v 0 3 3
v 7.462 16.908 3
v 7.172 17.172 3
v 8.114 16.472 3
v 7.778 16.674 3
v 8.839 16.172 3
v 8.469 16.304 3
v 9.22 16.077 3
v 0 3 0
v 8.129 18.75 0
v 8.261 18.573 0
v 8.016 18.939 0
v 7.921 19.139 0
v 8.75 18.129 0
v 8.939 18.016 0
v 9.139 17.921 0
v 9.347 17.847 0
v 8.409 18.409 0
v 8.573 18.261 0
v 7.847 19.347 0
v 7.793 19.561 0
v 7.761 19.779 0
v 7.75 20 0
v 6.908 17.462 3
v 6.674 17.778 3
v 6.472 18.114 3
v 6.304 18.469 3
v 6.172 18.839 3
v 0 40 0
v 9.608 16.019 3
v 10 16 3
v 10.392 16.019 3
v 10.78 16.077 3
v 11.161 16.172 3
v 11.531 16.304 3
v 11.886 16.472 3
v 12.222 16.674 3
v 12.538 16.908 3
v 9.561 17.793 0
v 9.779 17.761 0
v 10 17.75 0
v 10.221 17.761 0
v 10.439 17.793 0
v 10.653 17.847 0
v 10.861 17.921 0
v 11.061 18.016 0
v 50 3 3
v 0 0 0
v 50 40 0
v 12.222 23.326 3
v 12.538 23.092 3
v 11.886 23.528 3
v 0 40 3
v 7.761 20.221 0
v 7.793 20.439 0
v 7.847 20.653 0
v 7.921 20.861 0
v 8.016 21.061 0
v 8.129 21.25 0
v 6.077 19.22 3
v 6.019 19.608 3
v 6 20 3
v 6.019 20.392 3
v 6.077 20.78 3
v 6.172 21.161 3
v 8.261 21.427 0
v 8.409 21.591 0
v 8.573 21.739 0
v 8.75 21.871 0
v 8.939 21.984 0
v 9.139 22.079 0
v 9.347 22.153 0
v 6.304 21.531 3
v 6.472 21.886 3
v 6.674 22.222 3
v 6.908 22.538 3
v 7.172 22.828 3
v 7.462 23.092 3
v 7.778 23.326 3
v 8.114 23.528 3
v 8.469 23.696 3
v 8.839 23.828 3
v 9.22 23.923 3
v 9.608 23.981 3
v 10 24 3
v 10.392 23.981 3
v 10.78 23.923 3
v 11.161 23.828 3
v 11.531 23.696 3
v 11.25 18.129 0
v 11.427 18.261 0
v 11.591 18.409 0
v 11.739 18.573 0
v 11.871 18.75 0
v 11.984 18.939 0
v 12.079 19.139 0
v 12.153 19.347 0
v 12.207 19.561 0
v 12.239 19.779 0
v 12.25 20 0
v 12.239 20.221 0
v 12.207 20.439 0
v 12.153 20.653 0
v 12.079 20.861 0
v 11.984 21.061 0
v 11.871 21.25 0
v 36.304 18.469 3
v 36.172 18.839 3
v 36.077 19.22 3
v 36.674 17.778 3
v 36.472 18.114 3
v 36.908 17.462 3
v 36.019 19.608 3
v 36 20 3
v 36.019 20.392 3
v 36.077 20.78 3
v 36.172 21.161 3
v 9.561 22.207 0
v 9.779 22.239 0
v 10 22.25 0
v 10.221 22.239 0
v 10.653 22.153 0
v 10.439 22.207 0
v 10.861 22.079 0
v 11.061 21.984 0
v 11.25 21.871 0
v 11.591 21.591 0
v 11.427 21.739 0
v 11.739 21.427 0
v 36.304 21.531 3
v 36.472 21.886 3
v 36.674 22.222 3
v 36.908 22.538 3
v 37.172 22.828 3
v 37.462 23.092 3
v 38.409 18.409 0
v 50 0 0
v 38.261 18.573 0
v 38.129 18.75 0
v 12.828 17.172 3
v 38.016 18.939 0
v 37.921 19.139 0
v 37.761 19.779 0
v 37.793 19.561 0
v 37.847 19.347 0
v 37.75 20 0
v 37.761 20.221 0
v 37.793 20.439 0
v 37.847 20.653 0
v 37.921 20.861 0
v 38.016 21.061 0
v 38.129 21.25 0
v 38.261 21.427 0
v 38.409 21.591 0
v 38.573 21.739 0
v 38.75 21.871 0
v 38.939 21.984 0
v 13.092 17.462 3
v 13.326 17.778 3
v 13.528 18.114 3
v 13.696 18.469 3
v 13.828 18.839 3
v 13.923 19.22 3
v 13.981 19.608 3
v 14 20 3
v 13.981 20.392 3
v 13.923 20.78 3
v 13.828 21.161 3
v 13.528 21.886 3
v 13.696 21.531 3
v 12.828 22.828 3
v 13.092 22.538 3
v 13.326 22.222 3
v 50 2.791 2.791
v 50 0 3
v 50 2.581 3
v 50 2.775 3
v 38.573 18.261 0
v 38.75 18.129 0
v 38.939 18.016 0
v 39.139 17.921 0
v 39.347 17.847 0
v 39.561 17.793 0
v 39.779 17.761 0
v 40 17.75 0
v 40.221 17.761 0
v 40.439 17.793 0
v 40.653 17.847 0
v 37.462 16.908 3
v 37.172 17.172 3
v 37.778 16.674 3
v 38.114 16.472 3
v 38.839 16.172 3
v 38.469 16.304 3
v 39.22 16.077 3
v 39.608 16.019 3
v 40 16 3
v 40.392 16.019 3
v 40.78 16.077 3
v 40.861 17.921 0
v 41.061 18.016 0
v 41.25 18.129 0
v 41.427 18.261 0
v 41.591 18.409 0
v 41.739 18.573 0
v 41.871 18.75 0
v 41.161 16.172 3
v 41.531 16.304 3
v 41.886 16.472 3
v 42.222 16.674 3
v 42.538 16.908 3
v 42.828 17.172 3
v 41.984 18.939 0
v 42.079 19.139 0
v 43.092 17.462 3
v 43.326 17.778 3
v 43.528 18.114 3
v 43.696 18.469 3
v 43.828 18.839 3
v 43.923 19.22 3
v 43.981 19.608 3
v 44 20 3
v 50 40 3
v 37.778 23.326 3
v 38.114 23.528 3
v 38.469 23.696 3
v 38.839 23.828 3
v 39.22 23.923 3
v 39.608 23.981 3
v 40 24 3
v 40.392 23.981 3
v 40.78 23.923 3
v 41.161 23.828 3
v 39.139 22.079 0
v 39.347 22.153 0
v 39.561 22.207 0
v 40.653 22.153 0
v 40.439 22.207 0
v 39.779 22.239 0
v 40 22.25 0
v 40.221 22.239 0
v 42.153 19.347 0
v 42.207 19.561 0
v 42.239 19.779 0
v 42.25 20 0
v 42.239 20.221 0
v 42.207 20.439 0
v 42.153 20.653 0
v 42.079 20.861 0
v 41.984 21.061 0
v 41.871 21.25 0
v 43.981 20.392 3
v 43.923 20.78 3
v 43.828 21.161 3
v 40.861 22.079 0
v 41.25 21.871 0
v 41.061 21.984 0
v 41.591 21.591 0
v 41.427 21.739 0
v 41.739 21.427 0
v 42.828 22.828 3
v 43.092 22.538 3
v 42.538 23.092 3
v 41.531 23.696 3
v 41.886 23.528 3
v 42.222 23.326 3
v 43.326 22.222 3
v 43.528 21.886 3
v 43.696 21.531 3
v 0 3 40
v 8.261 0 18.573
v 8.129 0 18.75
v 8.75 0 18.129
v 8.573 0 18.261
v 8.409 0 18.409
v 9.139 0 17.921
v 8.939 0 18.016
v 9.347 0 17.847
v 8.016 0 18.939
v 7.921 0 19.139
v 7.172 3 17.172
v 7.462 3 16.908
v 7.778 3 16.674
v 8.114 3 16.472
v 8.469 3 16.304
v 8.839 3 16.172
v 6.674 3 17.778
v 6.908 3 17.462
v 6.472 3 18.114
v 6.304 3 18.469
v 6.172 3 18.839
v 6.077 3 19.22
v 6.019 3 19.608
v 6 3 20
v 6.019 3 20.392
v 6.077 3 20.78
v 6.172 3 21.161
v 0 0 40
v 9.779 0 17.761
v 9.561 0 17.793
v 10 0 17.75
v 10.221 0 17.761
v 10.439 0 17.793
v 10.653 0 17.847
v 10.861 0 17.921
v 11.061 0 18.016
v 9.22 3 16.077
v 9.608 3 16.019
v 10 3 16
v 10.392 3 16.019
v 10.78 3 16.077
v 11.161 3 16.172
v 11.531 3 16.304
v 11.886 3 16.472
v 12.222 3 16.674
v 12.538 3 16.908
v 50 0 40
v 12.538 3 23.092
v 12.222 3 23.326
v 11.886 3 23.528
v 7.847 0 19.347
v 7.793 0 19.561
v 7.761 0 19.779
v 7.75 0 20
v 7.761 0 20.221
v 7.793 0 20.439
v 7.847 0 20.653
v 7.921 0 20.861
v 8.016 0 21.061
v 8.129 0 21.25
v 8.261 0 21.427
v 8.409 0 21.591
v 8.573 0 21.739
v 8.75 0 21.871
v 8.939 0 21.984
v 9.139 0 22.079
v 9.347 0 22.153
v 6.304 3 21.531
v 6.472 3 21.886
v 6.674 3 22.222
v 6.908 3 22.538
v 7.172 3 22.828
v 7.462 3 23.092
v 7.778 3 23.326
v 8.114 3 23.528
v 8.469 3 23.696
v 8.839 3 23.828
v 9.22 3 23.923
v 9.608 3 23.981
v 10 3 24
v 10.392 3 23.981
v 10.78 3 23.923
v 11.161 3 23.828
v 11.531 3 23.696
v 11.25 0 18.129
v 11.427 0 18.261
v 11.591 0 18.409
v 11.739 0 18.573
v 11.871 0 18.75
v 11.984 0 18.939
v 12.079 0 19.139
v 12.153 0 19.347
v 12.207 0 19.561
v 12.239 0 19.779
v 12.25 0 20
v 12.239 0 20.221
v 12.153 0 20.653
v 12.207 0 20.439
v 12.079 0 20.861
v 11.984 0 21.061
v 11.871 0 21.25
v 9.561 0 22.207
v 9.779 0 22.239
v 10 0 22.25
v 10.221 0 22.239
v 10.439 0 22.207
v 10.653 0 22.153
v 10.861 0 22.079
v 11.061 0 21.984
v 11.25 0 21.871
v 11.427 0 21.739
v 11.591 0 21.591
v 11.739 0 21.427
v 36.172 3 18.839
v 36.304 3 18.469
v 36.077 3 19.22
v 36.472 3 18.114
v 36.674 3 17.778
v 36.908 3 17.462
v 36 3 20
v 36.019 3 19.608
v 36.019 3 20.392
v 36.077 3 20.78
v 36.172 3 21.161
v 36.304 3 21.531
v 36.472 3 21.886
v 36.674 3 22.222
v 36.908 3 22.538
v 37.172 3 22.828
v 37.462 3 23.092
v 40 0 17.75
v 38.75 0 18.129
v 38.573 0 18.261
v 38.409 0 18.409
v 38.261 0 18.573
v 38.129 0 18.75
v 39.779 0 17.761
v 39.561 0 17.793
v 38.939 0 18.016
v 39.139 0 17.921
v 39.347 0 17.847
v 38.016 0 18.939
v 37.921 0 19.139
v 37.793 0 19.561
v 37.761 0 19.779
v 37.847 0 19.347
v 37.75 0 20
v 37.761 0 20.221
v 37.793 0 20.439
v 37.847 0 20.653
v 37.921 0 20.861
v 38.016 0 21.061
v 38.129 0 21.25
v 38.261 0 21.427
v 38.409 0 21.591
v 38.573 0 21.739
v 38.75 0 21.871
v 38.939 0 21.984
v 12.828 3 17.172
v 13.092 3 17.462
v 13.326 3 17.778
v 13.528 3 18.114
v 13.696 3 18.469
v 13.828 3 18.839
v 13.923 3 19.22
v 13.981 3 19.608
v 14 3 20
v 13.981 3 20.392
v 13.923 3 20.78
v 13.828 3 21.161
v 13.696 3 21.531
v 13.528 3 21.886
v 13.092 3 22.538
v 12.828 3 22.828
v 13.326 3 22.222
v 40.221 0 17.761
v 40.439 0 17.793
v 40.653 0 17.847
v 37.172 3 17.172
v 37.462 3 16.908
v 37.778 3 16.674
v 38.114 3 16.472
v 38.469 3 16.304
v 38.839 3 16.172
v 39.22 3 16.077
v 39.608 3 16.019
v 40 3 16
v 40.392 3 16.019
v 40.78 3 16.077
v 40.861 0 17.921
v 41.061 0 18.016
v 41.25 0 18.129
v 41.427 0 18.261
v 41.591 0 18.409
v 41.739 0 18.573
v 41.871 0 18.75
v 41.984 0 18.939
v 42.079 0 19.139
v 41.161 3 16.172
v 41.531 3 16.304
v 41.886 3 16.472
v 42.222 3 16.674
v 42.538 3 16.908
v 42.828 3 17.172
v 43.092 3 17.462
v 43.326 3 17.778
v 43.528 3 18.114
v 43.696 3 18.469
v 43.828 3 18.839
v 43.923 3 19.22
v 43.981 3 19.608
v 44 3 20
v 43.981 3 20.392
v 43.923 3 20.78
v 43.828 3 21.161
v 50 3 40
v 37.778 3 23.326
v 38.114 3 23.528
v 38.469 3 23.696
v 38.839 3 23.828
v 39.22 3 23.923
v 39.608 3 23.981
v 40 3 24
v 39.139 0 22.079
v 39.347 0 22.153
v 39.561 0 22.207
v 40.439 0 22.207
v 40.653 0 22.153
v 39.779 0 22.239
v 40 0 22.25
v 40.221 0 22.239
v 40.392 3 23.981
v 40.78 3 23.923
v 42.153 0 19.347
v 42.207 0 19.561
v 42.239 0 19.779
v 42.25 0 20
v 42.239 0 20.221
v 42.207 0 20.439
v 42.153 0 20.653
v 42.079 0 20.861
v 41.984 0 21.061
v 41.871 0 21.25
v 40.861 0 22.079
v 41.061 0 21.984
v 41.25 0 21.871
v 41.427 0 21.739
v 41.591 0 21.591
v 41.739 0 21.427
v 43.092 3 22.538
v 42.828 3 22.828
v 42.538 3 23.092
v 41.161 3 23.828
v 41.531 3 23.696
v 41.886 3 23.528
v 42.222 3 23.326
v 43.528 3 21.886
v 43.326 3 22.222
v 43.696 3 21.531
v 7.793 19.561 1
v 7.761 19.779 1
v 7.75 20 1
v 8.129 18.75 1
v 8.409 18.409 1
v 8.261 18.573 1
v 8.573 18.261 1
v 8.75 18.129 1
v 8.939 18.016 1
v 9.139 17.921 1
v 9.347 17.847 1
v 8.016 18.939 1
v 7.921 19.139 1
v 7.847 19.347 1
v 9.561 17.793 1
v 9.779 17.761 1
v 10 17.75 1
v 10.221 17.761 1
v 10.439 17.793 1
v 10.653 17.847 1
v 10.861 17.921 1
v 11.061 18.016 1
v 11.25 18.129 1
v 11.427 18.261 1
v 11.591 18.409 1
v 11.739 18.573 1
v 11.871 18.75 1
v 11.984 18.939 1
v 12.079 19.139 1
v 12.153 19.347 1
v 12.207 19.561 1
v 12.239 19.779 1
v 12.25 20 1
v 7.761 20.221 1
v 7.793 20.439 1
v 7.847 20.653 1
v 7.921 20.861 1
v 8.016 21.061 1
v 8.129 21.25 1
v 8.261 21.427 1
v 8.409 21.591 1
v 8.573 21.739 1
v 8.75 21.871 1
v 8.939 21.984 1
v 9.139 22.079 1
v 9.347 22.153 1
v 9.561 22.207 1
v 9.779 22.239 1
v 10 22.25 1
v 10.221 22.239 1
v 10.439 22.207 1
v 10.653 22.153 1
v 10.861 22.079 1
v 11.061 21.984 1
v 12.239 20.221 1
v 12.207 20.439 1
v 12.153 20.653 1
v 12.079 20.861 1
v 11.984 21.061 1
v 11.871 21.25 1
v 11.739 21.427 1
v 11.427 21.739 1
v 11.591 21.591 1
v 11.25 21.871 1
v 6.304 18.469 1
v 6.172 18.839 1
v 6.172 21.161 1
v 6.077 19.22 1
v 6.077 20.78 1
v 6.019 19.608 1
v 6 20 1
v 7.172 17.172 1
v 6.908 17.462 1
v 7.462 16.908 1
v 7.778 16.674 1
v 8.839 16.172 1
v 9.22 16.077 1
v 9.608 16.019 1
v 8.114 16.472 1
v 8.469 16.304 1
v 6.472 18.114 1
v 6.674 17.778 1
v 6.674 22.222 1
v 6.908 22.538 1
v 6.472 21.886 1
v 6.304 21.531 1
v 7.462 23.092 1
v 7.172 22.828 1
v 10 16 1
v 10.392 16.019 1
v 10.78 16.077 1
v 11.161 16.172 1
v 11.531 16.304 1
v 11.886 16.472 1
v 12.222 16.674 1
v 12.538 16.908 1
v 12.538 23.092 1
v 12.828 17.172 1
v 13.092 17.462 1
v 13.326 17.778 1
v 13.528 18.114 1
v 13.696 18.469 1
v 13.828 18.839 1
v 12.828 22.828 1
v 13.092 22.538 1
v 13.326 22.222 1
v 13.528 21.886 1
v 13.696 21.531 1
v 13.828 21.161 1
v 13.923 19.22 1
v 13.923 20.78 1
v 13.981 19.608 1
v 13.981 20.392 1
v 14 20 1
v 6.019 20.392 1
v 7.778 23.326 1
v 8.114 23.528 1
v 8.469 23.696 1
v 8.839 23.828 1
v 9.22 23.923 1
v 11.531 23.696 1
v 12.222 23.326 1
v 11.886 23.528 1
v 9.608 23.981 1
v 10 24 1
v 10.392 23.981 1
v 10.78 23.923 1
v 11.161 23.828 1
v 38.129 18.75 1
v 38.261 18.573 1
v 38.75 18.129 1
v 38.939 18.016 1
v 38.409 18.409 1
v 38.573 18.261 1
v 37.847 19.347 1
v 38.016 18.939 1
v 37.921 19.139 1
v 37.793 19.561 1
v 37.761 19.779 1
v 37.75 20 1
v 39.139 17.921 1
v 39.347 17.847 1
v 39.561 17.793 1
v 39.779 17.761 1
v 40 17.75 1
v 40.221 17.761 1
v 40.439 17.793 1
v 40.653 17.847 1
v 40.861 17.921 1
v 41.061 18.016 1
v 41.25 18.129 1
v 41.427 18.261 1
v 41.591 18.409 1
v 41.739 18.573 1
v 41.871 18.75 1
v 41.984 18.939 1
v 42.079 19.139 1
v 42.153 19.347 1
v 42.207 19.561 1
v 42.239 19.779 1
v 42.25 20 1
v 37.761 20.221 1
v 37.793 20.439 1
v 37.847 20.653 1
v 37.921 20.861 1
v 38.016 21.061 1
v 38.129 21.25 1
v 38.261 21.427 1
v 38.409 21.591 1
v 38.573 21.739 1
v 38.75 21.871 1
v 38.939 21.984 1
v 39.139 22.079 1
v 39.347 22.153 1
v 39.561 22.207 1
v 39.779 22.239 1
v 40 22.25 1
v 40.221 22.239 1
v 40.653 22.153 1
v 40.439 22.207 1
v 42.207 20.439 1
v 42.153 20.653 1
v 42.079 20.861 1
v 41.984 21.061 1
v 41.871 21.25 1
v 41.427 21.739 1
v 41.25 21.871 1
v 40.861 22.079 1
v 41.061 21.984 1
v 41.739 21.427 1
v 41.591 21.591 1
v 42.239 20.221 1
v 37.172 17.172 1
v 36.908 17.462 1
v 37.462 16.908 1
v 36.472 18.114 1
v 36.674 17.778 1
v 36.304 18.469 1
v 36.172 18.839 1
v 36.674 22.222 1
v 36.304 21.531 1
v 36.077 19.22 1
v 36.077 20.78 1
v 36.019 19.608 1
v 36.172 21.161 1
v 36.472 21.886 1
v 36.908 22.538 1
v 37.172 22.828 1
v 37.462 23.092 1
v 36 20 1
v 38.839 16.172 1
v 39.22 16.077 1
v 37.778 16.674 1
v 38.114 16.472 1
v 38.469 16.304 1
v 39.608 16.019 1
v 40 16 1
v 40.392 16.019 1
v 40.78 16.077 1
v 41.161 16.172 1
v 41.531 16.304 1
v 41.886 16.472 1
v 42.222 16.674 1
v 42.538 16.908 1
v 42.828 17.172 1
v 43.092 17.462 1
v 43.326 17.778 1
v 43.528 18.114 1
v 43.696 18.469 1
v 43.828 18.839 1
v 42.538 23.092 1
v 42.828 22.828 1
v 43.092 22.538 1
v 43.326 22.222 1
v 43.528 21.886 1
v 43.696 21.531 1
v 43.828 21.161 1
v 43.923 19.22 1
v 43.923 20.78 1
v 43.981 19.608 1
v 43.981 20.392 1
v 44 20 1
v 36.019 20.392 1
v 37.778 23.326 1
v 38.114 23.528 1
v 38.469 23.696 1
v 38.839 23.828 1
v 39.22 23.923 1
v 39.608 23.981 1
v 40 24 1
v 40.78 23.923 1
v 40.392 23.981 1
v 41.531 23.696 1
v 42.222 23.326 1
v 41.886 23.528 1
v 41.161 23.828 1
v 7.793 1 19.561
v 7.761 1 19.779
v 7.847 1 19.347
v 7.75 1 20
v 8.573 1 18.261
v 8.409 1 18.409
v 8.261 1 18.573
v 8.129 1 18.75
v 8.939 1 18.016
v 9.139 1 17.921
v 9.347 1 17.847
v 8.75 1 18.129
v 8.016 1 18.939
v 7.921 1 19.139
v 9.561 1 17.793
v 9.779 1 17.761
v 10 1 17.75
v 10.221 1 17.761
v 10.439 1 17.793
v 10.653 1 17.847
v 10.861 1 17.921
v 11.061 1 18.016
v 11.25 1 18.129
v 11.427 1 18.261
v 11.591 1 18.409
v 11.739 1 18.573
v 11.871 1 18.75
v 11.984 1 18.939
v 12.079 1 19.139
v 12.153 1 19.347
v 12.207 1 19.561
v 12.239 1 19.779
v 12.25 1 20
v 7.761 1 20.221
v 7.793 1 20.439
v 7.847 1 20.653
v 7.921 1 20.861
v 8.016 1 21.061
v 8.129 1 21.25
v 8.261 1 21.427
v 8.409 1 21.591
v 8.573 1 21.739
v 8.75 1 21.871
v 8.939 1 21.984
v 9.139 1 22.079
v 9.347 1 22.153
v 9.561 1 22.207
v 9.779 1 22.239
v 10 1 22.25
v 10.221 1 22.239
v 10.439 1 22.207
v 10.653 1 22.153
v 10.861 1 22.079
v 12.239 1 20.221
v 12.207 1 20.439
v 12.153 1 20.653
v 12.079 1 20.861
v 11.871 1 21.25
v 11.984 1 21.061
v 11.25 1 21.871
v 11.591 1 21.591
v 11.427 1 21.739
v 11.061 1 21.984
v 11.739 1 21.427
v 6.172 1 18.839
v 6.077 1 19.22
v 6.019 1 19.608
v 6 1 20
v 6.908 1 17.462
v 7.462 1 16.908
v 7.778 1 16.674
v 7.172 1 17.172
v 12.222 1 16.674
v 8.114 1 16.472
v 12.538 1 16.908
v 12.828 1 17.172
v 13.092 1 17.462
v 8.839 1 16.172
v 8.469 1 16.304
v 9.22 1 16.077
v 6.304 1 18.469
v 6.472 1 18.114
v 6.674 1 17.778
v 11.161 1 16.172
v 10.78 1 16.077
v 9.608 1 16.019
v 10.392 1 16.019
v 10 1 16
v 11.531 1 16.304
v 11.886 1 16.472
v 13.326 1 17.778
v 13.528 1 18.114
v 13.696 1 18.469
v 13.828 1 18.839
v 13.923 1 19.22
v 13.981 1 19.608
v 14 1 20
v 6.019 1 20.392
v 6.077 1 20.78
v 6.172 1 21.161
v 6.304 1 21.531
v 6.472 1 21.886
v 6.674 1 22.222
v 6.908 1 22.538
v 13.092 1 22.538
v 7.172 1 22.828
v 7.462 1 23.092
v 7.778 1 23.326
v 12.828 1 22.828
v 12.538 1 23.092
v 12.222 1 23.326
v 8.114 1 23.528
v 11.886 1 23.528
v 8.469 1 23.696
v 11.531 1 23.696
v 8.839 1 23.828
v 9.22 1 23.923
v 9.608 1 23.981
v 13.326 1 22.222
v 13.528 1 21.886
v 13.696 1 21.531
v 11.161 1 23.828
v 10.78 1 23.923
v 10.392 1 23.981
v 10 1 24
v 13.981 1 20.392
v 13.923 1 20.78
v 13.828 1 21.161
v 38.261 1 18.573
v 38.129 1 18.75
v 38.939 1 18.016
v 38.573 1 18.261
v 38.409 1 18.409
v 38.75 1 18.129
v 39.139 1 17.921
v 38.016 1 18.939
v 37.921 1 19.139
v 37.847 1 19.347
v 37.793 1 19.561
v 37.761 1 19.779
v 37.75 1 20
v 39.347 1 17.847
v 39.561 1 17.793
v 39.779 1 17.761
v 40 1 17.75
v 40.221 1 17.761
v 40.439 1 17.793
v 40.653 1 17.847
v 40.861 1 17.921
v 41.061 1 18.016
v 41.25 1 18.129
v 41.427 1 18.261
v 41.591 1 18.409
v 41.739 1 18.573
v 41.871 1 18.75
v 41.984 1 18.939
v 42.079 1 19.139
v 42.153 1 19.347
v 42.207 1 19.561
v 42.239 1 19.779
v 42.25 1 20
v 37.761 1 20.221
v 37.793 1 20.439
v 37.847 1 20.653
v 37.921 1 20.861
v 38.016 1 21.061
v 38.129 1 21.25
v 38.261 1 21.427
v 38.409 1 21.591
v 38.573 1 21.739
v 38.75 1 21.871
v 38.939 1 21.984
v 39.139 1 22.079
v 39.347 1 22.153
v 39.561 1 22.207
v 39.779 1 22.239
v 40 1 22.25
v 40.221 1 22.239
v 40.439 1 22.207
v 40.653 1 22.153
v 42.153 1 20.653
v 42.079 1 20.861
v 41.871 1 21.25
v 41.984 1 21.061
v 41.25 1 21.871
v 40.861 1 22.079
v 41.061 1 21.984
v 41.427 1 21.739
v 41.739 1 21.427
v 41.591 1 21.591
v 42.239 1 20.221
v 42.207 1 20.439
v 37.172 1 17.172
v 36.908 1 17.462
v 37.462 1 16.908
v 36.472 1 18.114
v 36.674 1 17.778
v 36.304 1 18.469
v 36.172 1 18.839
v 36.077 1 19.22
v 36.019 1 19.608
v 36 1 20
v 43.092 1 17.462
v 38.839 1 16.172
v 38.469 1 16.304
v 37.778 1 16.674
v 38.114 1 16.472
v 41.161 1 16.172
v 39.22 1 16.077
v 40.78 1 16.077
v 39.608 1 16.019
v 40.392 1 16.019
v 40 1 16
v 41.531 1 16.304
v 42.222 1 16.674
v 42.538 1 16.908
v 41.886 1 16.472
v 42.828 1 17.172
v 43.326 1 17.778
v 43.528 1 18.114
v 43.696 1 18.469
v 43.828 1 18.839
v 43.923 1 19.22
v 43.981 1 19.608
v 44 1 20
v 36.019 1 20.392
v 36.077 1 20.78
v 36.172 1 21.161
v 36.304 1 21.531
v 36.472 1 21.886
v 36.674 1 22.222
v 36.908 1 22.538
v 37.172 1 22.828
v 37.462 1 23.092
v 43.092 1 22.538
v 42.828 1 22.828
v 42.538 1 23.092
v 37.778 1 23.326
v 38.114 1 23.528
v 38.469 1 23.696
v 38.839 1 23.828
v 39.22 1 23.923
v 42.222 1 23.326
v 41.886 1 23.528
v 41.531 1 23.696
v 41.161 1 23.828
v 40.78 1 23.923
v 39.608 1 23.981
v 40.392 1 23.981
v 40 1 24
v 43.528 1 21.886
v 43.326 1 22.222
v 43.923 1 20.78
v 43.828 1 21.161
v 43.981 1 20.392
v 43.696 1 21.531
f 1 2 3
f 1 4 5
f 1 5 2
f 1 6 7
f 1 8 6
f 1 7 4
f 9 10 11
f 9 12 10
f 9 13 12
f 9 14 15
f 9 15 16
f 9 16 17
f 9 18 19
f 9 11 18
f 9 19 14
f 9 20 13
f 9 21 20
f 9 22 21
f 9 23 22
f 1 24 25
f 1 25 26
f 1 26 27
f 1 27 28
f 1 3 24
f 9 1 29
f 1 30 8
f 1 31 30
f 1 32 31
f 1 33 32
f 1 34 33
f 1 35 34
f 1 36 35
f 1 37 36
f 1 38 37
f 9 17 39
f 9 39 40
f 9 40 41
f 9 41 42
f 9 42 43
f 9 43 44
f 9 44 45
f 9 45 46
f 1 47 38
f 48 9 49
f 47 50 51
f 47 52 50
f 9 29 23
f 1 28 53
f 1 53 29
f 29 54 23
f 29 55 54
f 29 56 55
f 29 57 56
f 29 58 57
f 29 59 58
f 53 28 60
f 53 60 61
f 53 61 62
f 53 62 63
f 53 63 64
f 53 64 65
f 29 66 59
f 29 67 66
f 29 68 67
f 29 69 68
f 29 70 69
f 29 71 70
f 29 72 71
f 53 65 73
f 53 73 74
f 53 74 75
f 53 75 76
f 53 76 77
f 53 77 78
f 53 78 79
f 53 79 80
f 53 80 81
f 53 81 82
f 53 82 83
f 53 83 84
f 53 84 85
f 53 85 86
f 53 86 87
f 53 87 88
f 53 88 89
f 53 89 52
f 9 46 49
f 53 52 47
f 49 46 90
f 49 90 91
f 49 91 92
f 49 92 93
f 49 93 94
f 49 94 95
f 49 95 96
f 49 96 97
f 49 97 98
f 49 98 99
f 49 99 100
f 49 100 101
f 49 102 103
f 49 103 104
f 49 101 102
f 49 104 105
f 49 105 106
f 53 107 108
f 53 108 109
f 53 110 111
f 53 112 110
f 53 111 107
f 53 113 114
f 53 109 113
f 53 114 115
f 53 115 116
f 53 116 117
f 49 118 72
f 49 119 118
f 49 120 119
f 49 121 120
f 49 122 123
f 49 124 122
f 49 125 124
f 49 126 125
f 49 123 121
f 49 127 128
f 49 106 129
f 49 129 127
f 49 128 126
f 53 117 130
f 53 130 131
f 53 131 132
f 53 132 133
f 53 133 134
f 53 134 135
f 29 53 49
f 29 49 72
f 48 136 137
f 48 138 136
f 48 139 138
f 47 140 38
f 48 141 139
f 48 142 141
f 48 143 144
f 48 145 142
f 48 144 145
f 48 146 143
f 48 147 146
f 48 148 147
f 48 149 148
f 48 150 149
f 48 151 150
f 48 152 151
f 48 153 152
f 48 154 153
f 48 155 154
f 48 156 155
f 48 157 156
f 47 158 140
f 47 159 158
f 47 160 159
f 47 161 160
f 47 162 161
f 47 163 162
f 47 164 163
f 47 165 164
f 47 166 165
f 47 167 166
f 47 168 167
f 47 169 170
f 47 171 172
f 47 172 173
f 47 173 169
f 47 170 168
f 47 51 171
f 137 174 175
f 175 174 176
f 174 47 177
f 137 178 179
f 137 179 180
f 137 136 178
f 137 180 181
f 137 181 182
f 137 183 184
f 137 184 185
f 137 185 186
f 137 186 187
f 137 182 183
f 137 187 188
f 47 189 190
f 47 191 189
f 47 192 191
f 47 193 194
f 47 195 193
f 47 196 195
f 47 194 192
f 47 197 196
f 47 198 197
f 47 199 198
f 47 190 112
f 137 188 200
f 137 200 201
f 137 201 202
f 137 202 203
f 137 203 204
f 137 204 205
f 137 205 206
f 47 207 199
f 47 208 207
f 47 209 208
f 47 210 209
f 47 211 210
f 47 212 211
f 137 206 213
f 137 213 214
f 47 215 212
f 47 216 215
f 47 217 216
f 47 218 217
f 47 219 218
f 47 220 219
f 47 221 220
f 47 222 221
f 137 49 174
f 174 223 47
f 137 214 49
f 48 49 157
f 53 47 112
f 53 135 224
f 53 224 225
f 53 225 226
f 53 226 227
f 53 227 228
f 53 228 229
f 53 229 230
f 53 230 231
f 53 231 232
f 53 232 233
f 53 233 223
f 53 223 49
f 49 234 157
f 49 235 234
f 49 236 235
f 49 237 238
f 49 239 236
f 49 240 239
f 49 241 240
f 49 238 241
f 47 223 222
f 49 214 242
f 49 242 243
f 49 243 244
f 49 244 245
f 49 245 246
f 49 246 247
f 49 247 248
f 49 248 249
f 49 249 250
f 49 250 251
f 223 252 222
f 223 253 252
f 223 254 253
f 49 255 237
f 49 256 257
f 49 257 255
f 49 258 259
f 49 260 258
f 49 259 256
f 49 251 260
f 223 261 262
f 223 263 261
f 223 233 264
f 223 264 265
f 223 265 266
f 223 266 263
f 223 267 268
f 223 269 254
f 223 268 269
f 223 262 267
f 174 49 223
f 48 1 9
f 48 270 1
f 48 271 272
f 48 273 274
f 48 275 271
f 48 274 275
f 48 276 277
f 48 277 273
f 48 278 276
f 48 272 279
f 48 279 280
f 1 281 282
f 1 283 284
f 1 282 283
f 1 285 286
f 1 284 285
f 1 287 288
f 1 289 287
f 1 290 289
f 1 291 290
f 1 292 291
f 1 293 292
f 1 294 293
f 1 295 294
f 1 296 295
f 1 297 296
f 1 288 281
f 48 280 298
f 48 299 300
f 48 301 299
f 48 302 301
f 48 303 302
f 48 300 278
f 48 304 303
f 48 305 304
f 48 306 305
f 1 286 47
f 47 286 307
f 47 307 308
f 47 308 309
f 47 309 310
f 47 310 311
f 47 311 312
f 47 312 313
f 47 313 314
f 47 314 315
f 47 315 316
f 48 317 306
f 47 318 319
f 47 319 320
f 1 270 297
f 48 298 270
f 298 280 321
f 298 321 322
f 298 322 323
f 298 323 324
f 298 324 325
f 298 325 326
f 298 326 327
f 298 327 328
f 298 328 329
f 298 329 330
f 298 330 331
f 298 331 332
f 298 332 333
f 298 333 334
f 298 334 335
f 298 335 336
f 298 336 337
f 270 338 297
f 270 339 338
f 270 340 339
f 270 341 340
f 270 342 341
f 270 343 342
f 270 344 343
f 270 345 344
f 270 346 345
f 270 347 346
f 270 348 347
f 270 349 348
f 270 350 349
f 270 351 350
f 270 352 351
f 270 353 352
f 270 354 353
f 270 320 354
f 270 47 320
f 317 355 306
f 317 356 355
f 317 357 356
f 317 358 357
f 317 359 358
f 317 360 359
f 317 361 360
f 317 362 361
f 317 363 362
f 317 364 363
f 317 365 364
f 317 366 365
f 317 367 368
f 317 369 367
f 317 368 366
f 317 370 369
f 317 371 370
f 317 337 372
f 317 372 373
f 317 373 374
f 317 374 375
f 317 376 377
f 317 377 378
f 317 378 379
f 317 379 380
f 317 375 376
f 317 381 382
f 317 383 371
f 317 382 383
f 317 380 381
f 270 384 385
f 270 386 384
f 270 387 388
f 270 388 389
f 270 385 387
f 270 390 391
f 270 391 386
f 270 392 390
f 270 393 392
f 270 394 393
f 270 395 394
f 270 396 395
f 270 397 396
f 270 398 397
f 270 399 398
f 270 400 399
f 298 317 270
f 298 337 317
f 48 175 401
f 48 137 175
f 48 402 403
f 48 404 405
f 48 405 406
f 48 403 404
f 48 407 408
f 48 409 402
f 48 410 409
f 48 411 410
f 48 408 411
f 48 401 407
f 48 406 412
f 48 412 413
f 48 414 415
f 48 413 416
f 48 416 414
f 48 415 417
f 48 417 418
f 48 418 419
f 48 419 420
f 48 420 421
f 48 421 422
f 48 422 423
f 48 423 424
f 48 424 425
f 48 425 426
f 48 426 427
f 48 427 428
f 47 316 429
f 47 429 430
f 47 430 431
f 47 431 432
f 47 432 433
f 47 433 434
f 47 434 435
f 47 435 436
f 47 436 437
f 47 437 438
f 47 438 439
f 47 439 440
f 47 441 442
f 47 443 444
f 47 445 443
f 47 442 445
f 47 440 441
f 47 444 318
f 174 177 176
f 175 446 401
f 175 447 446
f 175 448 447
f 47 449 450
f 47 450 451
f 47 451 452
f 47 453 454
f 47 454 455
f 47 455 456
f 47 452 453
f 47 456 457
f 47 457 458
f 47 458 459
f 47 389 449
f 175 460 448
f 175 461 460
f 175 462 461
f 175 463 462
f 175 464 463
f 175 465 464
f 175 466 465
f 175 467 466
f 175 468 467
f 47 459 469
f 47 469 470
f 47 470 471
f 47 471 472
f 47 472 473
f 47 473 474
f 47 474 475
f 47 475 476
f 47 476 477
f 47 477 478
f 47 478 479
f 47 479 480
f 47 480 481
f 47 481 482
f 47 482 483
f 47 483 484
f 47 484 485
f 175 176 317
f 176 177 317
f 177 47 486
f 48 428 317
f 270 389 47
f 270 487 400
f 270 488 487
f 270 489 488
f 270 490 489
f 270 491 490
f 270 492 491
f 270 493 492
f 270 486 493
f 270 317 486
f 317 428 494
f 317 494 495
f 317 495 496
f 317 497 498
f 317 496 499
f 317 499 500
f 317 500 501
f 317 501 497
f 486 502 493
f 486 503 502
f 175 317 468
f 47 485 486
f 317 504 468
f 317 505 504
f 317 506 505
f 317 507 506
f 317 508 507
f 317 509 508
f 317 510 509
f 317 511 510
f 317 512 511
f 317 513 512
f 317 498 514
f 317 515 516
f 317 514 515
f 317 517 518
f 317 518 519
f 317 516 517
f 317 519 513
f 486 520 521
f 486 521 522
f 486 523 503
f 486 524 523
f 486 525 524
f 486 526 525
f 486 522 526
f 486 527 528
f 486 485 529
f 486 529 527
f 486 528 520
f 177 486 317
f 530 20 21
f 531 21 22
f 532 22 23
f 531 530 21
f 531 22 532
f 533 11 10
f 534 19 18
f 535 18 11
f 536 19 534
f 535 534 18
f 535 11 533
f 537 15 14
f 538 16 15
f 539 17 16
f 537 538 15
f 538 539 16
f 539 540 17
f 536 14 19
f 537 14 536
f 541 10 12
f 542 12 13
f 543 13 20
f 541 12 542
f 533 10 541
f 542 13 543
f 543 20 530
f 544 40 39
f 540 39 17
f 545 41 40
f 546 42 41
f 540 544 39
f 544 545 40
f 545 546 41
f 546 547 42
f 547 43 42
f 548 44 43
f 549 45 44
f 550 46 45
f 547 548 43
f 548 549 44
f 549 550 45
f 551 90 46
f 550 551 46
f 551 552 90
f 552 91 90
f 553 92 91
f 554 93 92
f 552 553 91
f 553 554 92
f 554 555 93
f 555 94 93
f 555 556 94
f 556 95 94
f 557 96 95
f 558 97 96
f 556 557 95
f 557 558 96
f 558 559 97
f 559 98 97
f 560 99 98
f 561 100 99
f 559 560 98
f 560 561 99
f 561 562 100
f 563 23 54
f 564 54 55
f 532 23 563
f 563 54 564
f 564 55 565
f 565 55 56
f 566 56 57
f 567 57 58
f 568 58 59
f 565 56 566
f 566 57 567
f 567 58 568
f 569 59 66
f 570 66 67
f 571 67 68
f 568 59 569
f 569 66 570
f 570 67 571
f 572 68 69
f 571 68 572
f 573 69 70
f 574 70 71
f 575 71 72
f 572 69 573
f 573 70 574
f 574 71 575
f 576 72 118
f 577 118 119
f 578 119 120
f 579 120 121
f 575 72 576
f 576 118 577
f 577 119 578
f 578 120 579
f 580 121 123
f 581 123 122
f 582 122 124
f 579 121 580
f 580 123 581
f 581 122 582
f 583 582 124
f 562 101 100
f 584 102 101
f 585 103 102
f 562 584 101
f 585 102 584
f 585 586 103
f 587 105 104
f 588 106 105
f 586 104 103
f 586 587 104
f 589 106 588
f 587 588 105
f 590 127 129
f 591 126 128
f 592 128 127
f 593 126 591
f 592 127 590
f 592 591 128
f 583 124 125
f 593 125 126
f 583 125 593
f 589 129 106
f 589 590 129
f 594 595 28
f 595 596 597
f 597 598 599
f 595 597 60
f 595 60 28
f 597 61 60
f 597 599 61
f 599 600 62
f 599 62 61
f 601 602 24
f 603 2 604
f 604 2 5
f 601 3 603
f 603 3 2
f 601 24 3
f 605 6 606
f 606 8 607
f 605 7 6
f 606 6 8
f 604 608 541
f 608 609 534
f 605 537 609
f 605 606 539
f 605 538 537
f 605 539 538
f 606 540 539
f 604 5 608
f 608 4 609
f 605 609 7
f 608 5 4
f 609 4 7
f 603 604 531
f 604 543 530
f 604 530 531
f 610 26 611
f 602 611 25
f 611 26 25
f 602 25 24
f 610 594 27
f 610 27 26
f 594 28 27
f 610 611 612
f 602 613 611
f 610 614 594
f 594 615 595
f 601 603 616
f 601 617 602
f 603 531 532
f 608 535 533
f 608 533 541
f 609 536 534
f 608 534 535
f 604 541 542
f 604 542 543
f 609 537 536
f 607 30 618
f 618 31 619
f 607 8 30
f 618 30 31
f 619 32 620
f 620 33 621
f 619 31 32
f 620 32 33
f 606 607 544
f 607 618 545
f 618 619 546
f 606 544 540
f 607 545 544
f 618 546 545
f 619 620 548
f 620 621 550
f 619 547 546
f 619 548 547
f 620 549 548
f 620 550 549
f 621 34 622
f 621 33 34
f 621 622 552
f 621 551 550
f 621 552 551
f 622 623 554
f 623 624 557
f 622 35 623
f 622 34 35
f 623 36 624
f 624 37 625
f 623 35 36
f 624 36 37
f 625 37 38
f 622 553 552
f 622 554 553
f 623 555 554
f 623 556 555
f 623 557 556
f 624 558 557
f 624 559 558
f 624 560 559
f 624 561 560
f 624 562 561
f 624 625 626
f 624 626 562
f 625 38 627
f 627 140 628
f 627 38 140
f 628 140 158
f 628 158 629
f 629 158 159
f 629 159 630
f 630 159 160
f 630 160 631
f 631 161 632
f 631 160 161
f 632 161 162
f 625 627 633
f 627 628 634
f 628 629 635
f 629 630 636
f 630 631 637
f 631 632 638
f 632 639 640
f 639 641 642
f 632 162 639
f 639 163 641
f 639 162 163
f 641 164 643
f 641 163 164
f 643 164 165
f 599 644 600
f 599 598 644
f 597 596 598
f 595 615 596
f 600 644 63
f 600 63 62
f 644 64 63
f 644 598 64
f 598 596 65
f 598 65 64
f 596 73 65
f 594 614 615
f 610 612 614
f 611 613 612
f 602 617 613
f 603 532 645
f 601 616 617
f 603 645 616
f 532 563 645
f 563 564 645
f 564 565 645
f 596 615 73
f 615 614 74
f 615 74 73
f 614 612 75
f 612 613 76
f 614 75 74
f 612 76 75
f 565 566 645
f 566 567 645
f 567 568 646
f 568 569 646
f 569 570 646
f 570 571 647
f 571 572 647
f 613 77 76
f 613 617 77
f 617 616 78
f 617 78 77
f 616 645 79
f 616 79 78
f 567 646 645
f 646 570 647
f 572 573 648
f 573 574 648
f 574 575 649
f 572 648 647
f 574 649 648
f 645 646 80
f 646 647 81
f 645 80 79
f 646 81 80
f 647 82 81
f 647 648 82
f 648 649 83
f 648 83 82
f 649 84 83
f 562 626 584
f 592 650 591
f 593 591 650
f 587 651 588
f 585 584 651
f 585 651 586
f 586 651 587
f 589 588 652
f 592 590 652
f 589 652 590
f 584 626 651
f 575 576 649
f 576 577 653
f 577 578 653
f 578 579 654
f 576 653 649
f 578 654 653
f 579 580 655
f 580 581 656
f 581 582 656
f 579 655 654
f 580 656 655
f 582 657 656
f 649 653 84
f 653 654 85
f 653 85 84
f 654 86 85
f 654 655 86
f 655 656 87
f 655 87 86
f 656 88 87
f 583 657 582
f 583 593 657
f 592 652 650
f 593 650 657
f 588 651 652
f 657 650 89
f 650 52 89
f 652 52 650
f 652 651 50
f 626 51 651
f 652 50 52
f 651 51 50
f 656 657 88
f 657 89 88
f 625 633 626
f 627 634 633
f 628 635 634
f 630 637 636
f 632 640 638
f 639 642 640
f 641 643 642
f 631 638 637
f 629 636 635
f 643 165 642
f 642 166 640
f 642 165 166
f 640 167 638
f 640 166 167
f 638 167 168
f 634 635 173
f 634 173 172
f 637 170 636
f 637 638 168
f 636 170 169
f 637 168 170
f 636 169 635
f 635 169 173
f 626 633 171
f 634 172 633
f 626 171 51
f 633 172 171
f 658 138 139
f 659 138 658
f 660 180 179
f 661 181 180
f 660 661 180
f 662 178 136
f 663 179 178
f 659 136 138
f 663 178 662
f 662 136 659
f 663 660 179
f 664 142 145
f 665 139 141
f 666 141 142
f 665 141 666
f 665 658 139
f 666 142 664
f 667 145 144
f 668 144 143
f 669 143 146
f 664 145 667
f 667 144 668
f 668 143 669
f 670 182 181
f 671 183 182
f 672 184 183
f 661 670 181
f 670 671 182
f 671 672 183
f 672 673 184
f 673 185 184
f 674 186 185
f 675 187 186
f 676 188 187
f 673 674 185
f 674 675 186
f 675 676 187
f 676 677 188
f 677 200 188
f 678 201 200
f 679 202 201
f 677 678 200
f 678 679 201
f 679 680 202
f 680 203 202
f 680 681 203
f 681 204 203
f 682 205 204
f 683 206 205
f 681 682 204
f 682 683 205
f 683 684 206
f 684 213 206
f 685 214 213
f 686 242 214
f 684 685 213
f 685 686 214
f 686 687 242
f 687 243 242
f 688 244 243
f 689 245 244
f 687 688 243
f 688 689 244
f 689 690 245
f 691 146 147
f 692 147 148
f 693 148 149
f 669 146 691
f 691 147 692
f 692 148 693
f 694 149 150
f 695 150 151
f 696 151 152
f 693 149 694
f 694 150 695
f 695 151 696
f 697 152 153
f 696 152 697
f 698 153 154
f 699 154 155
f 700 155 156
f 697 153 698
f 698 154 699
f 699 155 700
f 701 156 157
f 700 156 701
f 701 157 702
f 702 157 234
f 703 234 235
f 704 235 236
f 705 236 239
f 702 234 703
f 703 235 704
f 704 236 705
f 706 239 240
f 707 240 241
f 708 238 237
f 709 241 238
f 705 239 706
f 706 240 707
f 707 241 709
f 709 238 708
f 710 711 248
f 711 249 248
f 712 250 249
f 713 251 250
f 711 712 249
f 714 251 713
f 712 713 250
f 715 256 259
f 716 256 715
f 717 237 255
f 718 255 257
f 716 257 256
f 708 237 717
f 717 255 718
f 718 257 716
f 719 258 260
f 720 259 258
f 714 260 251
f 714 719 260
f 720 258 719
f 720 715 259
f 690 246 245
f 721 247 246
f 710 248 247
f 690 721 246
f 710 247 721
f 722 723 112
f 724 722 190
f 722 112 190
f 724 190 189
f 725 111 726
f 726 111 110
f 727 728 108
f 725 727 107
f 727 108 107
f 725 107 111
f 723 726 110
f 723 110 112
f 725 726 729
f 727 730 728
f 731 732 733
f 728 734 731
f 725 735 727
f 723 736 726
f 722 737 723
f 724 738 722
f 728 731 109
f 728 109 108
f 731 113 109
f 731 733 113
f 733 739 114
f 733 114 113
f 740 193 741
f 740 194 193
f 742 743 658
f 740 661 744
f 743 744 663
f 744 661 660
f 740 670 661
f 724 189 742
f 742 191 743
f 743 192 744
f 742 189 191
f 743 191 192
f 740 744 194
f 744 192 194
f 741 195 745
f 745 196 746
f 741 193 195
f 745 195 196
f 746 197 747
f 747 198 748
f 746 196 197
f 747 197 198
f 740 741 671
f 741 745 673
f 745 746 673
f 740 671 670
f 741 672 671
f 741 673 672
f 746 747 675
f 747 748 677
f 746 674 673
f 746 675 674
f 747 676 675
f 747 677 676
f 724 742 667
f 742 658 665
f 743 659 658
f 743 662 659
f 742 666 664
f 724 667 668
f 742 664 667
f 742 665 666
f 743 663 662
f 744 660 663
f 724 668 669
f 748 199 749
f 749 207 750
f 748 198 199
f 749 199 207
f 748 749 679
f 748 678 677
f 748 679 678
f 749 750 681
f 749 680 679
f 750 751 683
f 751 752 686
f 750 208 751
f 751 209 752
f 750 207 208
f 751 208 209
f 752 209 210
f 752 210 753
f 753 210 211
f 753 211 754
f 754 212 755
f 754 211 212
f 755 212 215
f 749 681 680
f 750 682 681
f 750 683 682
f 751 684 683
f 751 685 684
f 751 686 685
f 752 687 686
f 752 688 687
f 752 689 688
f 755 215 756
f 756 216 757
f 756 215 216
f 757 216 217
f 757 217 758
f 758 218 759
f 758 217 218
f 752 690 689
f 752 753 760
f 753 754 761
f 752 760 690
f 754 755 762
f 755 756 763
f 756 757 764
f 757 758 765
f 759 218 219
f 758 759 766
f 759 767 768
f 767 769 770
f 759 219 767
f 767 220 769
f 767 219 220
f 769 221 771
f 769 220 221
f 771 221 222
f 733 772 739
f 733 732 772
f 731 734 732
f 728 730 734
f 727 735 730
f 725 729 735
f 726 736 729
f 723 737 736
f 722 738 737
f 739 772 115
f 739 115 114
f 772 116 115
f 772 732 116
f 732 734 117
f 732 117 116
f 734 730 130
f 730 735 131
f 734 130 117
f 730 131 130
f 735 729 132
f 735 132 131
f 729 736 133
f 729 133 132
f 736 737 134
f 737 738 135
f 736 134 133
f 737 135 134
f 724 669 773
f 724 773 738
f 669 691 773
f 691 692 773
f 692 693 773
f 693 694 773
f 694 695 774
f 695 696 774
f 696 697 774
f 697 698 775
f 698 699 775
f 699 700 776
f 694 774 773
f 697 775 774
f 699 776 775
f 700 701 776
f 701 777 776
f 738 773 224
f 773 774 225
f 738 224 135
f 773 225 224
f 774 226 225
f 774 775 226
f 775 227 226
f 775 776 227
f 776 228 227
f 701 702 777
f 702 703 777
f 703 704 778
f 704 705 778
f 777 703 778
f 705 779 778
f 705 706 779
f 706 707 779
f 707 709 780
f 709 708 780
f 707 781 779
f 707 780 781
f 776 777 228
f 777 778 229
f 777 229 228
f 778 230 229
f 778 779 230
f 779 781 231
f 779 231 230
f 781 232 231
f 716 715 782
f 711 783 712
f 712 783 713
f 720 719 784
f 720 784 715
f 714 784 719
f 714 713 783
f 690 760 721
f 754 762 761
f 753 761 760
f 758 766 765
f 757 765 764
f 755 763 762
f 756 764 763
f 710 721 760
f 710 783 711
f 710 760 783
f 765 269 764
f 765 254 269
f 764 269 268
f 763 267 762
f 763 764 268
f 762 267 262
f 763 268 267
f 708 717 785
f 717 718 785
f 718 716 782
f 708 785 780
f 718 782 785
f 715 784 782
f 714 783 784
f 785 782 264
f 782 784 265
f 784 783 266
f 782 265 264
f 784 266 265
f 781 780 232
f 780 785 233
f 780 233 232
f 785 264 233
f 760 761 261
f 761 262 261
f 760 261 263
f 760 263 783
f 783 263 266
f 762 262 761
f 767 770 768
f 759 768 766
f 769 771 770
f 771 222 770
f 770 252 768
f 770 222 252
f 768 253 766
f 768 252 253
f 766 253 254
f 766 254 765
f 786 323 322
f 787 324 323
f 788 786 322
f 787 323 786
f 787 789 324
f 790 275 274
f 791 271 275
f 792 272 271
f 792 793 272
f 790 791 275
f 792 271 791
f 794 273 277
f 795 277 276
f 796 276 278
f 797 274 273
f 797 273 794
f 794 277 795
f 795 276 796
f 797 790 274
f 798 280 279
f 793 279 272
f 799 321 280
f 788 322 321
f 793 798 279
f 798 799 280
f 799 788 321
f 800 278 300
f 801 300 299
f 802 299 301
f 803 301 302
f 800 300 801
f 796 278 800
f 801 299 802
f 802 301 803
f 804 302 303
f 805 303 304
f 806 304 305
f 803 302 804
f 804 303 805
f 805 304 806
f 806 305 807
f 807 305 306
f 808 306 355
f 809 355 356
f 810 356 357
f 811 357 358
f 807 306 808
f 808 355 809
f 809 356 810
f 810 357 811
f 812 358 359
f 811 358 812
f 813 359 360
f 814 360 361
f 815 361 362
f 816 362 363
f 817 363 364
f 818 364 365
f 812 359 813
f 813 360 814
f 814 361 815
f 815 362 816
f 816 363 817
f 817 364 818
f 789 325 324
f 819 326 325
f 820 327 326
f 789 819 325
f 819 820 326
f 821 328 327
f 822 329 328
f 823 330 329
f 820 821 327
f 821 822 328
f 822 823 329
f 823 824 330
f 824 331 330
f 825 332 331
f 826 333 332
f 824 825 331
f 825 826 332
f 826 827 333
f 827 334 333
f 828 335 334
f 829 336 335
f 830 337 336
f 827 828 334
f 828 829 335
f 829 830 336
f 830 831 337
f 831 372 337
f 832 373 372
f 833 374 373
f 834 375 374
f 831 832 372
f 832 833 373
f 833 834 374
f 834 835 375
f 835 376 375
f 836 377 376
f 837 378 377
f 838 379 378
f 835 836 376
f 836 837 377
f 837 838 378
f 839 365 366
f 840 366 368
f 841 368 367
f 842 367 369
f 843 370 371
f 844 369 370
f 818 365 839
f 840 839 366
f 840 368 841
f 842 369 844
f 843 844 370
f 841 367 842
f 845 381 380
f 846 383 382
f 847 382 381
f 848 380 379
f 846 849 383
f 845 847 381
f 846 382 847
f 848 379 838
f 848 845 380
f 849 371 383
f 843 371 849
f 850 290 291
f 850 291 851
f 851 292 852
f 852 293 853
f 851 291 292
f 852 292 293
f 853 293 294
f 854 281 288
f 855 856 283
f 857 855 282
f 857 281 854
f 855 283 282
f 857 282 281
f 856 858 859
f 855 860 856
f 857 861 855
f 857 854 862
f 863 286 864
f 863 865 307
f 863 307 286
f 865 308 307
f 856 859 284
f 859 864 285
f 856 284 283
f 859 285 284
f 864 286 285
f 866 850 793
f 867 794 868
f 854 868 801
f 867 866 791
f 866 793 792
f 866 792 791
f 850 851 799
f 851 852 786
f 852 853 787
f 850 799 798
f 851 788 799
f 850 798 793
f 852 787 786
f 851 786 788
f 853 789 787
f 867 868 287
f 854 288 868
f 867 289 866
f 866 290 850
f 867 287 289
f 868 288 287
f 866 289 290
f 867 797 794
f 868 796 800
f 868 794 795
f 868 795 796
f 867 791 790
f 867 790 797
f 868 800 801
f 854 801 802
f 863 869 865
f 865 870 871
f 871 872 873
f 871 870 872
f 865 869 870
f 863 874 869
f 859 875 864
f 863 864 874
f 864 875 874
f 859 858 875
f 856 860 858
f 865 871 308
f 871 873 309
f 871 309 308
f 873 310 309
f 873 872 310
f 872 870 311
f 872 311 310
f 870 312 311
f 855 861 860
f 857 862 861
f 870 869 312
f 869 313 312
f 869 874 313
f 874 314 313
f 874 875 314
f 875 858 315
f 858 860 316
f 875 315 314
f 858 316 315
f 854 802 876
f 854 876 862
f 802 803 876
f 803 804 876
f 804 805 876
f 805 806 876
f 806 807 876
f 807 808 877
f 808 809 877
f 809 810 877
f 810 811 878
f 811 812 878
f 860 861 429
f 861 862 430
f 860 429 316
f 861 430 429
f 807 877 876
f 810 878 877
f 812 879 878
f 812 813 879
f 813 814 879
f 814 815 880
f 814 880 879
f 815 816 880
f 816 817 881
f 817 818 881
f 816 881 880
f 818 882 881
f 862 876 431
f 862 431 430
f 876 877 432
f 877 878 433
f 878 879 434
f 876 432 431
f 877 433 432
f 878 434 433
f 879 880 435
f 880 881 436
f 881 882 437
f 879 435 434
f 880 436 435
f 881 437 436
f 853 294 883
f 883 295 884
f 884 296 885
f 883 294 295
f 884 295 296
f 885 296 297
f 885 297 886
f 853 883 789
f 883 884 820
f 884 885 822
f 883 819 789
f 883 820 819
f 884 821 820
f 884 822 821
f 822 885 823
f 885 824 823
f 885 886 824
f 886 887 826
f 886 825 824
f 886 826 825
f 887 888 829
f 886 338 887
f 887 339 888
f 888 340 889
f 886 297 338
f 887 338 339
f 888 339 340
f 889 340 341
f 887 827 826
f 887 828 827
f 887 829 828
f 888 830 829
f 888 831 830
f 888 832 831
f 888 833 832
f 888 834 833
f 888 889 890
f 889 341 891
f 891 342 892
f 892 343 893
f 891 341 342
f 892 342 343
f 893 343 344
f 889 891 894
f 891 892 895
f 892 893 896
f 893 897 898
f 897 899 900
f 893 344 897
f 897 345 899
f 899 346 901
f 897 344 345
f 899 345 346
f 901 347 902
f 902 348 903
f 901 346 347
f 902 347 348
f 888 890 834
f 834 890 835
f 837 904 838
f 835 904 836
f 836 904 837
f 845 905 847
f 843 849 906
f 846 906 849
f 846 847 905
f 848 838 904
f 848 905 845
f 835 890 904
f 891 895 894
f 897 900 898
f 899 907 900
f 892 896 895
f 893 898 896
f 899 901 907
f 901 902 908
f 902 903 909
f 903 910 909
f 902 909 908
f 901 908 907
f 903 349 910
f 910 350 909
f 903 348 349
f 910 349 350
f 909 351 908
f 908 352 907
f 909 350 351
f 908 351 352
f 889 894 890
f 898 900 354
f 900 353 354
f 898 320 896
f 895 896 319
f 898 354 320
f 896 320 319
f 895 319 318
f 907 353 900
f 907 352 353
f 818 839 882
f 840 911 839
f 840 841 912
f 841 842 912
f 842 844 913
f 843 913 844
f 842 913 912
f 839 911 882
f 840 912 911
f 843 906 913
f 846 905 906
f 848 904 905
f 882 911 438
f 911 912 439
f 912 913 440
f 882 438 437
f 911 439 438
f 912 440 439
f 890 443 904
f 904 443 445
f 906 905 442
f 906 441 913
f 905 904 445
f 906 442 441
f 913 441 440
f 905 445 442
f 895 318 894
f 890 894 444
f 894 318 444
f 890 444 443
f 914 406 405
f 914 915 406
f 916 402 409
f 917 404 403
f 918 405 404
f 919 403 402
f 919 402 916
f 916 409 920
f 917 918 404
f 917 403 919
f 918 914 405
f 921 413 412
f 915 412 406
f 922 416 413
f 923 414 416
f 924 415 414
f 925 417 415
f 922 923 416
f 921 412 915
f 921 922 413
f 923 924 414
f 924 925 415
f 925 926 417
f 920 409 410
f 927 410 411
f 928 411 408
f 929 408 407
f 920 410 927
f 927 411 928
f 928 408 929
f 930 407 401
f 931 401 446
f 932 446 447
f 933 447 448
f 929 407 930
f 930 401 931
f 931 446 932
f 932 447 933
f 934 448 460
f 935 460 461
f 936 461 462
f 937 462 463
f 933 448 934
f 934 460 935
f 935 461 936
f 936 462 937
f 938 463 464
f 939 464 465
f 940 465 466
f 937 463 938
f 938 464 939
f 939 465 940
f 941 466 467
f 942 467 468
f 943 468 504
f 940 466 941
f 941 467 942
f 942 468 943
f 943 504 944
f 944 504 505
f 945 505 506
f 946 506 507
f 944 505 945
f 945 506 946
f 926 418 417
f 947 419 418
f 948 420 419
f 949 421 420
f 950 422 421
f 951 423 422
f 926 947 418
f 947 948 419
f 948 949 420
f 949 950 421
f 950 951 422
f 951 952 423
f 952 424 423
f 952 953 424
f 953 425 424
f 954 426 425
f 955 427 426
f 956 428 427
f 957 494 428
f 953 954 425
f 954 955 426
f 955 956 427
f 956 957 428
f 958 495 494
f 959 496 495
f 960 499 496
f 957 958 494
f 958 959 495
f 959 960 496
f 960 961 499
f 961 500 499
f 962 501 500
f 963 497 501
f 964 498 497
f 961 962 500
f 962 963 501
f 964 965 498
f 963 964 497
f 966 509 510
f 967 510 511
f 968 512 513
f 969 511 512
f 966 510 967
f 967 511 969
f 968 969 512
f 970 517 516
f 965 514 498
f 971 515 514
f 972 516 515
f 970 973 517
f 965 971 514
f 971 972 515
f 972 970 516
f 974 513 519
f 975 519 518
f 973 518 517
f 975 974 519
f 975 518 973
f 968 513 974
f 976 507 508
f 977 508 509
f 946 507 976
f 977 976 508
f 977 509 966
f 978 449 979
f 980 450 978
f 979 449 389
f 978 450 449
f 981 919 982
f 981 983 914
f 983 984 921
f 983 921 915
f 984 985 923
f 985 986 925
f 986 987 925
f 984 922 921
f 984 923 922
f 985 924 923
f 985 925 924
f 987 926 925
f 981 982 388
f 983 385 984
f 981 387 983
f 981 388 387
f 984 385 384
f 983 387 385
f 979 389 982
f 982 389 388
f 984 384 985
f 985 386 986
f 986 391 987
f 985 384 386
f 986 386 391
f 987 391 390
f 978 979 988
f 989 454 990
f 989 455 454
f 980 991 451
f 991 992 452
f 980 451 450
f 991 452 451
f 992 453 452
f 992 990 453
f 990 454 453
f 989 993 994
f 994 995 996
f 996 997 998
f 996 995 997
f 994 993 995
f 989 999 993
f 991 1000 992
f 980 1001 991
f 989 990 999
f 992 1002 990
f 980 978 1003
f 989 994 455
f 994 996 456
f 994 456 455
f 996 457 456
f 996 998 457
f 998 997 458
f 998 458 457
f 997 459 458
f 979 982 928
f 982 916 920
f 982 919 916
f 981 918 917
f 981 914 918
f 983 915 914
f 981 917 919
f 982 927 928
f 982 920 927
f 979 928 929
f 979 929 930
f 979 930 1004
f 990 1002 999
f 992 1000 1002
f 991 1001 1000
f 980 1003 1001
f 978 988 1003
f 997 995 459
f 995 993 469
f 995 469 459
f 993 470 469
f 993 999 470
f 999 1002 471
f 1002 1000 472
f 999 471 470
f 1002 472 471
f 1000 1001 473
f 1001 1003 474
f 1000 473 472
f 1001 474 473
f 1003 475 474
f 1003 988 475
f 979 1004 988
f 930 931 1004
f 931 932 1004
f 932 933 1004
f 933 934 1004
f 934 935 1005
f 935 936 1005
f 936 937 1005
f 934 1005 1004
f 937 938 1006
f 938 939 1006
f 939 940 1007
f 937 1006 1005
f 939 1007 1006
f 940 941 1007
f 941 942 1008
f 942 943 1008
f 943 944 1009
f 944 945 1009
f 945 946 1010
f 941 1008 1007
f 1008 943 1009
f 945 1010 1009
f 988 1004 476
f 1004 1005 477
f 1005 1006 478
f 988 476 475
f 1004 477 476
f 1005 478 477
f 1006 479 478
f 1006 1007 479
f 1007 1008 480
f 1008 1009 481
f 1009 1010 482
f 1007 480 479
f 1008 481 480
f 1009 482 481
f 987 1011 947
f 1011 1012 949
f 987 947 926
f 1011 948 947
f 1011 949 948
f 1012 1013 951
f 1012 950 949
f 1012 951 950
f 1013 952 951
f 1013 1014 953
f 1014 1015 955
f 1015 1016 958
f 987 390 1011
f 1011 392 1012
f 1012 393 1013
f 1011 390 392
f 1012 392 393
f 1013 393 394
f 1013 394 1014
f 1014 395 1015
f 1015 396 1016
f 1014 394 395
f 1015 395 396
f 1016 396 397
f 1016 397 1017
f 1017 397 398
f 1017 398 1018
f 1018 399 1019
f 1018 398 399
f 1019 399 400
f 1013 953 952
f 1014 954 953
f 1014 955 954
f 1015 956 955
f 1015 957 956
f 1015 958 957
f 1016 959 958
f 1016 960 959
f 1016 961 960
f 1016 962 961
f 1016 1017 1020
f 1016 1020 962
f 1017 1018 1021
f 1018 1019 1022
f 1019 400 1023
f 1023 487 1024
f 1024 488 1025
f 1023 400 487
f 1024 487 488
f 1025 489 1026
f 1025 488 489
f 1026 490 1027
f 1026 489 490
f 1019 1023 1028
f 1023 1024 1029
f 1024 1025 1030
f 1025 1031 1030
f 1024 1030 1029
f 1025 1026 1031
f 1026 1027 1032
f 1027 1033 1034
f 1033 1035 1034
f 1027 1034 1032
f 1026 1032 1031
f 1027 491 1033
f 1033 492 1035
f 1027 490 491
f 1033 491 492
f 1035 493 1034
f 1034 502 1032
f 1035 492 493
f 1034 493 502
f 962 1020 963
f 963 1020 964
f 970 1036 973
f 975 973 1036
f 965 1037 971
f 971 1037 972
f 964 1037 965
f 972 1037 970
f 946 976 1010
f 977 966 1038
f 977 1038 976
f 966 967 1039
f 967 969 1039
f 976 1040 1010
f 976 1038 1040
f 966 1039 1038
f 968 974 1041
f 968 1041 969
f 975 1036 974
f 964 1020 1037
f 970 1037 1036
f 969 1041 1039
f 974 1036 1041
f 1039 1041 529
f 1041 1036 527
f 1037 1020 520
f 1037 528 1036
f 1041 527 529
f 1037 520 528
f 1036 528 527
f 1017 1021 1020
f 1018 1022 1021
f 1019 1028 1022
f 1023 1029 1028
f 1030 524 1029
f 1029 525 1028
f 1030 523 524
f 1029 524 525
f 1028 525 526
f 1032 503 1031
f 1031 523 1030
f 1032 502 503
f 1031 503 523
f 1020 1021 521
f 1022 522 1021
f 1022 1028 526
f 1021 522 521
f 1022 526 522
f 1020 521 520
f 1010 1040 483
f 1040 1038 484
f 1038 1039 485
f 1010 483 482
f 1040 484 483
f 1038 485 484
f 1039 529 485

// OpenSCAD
// L-bracket parameters
w = 50;          // width (X)
d = 40;          // horizontal depth (Y)
h = 40;          // vertical height (Z)
t = 3;           // thickness

// Hole parameters (M4 countersunk request as specified)
through_d = 4.5; // through hole diameter
cs_d = 8;        // countersink seat diameter
cs_depth = 2;    // countersink seat depth

// Hole placement
edge_inset = 10;             // from edge inward along length direction
x1 = edge_inset;
x2 = w - edge_inset;
y_center = d / 2;
z_center = h / 2;

$fn = 64;

difference() {
    union() {
        // Horizontal flange: extends +Y, thickness in +Z
        cube([w, d, t], center = false);

        // Vertical flange: extends +Z, thickness in +Y
        cube([w, t, h], center = false);
    }

    // ---- Horizontal flange holes (outer side is +Z) ----
    for (x = [x1, x2]) {
        // Through hole
        translate([x, y_center, -1])
            cylinder(d = through_d, h = t + 2);

        // Countersink seat (counterbore as specified: Φ8 x 2mm)
        translate([x, y_center, t - cs_depth])
            cylinder(d = cs_d, h = cs_depth + 0.01);
    }

    // ---- Vertical flange holes (outer side is +Y) ----
    for (x = [x1, x2]) {
        // Through hole (along Y)
        translate([x, -1, z_center])
            rotate([-90, 0, 0])
                cylinder(d = through_d, h = t + 2);

        // Countersink seat on outer side (+Y), depth into flange
        translate([x, t - cs_depth, z_center])
            rotate([-90, 0, 0])
                cylinder(d = cs_d, h = cs_depth + 0.01);
    }
}
